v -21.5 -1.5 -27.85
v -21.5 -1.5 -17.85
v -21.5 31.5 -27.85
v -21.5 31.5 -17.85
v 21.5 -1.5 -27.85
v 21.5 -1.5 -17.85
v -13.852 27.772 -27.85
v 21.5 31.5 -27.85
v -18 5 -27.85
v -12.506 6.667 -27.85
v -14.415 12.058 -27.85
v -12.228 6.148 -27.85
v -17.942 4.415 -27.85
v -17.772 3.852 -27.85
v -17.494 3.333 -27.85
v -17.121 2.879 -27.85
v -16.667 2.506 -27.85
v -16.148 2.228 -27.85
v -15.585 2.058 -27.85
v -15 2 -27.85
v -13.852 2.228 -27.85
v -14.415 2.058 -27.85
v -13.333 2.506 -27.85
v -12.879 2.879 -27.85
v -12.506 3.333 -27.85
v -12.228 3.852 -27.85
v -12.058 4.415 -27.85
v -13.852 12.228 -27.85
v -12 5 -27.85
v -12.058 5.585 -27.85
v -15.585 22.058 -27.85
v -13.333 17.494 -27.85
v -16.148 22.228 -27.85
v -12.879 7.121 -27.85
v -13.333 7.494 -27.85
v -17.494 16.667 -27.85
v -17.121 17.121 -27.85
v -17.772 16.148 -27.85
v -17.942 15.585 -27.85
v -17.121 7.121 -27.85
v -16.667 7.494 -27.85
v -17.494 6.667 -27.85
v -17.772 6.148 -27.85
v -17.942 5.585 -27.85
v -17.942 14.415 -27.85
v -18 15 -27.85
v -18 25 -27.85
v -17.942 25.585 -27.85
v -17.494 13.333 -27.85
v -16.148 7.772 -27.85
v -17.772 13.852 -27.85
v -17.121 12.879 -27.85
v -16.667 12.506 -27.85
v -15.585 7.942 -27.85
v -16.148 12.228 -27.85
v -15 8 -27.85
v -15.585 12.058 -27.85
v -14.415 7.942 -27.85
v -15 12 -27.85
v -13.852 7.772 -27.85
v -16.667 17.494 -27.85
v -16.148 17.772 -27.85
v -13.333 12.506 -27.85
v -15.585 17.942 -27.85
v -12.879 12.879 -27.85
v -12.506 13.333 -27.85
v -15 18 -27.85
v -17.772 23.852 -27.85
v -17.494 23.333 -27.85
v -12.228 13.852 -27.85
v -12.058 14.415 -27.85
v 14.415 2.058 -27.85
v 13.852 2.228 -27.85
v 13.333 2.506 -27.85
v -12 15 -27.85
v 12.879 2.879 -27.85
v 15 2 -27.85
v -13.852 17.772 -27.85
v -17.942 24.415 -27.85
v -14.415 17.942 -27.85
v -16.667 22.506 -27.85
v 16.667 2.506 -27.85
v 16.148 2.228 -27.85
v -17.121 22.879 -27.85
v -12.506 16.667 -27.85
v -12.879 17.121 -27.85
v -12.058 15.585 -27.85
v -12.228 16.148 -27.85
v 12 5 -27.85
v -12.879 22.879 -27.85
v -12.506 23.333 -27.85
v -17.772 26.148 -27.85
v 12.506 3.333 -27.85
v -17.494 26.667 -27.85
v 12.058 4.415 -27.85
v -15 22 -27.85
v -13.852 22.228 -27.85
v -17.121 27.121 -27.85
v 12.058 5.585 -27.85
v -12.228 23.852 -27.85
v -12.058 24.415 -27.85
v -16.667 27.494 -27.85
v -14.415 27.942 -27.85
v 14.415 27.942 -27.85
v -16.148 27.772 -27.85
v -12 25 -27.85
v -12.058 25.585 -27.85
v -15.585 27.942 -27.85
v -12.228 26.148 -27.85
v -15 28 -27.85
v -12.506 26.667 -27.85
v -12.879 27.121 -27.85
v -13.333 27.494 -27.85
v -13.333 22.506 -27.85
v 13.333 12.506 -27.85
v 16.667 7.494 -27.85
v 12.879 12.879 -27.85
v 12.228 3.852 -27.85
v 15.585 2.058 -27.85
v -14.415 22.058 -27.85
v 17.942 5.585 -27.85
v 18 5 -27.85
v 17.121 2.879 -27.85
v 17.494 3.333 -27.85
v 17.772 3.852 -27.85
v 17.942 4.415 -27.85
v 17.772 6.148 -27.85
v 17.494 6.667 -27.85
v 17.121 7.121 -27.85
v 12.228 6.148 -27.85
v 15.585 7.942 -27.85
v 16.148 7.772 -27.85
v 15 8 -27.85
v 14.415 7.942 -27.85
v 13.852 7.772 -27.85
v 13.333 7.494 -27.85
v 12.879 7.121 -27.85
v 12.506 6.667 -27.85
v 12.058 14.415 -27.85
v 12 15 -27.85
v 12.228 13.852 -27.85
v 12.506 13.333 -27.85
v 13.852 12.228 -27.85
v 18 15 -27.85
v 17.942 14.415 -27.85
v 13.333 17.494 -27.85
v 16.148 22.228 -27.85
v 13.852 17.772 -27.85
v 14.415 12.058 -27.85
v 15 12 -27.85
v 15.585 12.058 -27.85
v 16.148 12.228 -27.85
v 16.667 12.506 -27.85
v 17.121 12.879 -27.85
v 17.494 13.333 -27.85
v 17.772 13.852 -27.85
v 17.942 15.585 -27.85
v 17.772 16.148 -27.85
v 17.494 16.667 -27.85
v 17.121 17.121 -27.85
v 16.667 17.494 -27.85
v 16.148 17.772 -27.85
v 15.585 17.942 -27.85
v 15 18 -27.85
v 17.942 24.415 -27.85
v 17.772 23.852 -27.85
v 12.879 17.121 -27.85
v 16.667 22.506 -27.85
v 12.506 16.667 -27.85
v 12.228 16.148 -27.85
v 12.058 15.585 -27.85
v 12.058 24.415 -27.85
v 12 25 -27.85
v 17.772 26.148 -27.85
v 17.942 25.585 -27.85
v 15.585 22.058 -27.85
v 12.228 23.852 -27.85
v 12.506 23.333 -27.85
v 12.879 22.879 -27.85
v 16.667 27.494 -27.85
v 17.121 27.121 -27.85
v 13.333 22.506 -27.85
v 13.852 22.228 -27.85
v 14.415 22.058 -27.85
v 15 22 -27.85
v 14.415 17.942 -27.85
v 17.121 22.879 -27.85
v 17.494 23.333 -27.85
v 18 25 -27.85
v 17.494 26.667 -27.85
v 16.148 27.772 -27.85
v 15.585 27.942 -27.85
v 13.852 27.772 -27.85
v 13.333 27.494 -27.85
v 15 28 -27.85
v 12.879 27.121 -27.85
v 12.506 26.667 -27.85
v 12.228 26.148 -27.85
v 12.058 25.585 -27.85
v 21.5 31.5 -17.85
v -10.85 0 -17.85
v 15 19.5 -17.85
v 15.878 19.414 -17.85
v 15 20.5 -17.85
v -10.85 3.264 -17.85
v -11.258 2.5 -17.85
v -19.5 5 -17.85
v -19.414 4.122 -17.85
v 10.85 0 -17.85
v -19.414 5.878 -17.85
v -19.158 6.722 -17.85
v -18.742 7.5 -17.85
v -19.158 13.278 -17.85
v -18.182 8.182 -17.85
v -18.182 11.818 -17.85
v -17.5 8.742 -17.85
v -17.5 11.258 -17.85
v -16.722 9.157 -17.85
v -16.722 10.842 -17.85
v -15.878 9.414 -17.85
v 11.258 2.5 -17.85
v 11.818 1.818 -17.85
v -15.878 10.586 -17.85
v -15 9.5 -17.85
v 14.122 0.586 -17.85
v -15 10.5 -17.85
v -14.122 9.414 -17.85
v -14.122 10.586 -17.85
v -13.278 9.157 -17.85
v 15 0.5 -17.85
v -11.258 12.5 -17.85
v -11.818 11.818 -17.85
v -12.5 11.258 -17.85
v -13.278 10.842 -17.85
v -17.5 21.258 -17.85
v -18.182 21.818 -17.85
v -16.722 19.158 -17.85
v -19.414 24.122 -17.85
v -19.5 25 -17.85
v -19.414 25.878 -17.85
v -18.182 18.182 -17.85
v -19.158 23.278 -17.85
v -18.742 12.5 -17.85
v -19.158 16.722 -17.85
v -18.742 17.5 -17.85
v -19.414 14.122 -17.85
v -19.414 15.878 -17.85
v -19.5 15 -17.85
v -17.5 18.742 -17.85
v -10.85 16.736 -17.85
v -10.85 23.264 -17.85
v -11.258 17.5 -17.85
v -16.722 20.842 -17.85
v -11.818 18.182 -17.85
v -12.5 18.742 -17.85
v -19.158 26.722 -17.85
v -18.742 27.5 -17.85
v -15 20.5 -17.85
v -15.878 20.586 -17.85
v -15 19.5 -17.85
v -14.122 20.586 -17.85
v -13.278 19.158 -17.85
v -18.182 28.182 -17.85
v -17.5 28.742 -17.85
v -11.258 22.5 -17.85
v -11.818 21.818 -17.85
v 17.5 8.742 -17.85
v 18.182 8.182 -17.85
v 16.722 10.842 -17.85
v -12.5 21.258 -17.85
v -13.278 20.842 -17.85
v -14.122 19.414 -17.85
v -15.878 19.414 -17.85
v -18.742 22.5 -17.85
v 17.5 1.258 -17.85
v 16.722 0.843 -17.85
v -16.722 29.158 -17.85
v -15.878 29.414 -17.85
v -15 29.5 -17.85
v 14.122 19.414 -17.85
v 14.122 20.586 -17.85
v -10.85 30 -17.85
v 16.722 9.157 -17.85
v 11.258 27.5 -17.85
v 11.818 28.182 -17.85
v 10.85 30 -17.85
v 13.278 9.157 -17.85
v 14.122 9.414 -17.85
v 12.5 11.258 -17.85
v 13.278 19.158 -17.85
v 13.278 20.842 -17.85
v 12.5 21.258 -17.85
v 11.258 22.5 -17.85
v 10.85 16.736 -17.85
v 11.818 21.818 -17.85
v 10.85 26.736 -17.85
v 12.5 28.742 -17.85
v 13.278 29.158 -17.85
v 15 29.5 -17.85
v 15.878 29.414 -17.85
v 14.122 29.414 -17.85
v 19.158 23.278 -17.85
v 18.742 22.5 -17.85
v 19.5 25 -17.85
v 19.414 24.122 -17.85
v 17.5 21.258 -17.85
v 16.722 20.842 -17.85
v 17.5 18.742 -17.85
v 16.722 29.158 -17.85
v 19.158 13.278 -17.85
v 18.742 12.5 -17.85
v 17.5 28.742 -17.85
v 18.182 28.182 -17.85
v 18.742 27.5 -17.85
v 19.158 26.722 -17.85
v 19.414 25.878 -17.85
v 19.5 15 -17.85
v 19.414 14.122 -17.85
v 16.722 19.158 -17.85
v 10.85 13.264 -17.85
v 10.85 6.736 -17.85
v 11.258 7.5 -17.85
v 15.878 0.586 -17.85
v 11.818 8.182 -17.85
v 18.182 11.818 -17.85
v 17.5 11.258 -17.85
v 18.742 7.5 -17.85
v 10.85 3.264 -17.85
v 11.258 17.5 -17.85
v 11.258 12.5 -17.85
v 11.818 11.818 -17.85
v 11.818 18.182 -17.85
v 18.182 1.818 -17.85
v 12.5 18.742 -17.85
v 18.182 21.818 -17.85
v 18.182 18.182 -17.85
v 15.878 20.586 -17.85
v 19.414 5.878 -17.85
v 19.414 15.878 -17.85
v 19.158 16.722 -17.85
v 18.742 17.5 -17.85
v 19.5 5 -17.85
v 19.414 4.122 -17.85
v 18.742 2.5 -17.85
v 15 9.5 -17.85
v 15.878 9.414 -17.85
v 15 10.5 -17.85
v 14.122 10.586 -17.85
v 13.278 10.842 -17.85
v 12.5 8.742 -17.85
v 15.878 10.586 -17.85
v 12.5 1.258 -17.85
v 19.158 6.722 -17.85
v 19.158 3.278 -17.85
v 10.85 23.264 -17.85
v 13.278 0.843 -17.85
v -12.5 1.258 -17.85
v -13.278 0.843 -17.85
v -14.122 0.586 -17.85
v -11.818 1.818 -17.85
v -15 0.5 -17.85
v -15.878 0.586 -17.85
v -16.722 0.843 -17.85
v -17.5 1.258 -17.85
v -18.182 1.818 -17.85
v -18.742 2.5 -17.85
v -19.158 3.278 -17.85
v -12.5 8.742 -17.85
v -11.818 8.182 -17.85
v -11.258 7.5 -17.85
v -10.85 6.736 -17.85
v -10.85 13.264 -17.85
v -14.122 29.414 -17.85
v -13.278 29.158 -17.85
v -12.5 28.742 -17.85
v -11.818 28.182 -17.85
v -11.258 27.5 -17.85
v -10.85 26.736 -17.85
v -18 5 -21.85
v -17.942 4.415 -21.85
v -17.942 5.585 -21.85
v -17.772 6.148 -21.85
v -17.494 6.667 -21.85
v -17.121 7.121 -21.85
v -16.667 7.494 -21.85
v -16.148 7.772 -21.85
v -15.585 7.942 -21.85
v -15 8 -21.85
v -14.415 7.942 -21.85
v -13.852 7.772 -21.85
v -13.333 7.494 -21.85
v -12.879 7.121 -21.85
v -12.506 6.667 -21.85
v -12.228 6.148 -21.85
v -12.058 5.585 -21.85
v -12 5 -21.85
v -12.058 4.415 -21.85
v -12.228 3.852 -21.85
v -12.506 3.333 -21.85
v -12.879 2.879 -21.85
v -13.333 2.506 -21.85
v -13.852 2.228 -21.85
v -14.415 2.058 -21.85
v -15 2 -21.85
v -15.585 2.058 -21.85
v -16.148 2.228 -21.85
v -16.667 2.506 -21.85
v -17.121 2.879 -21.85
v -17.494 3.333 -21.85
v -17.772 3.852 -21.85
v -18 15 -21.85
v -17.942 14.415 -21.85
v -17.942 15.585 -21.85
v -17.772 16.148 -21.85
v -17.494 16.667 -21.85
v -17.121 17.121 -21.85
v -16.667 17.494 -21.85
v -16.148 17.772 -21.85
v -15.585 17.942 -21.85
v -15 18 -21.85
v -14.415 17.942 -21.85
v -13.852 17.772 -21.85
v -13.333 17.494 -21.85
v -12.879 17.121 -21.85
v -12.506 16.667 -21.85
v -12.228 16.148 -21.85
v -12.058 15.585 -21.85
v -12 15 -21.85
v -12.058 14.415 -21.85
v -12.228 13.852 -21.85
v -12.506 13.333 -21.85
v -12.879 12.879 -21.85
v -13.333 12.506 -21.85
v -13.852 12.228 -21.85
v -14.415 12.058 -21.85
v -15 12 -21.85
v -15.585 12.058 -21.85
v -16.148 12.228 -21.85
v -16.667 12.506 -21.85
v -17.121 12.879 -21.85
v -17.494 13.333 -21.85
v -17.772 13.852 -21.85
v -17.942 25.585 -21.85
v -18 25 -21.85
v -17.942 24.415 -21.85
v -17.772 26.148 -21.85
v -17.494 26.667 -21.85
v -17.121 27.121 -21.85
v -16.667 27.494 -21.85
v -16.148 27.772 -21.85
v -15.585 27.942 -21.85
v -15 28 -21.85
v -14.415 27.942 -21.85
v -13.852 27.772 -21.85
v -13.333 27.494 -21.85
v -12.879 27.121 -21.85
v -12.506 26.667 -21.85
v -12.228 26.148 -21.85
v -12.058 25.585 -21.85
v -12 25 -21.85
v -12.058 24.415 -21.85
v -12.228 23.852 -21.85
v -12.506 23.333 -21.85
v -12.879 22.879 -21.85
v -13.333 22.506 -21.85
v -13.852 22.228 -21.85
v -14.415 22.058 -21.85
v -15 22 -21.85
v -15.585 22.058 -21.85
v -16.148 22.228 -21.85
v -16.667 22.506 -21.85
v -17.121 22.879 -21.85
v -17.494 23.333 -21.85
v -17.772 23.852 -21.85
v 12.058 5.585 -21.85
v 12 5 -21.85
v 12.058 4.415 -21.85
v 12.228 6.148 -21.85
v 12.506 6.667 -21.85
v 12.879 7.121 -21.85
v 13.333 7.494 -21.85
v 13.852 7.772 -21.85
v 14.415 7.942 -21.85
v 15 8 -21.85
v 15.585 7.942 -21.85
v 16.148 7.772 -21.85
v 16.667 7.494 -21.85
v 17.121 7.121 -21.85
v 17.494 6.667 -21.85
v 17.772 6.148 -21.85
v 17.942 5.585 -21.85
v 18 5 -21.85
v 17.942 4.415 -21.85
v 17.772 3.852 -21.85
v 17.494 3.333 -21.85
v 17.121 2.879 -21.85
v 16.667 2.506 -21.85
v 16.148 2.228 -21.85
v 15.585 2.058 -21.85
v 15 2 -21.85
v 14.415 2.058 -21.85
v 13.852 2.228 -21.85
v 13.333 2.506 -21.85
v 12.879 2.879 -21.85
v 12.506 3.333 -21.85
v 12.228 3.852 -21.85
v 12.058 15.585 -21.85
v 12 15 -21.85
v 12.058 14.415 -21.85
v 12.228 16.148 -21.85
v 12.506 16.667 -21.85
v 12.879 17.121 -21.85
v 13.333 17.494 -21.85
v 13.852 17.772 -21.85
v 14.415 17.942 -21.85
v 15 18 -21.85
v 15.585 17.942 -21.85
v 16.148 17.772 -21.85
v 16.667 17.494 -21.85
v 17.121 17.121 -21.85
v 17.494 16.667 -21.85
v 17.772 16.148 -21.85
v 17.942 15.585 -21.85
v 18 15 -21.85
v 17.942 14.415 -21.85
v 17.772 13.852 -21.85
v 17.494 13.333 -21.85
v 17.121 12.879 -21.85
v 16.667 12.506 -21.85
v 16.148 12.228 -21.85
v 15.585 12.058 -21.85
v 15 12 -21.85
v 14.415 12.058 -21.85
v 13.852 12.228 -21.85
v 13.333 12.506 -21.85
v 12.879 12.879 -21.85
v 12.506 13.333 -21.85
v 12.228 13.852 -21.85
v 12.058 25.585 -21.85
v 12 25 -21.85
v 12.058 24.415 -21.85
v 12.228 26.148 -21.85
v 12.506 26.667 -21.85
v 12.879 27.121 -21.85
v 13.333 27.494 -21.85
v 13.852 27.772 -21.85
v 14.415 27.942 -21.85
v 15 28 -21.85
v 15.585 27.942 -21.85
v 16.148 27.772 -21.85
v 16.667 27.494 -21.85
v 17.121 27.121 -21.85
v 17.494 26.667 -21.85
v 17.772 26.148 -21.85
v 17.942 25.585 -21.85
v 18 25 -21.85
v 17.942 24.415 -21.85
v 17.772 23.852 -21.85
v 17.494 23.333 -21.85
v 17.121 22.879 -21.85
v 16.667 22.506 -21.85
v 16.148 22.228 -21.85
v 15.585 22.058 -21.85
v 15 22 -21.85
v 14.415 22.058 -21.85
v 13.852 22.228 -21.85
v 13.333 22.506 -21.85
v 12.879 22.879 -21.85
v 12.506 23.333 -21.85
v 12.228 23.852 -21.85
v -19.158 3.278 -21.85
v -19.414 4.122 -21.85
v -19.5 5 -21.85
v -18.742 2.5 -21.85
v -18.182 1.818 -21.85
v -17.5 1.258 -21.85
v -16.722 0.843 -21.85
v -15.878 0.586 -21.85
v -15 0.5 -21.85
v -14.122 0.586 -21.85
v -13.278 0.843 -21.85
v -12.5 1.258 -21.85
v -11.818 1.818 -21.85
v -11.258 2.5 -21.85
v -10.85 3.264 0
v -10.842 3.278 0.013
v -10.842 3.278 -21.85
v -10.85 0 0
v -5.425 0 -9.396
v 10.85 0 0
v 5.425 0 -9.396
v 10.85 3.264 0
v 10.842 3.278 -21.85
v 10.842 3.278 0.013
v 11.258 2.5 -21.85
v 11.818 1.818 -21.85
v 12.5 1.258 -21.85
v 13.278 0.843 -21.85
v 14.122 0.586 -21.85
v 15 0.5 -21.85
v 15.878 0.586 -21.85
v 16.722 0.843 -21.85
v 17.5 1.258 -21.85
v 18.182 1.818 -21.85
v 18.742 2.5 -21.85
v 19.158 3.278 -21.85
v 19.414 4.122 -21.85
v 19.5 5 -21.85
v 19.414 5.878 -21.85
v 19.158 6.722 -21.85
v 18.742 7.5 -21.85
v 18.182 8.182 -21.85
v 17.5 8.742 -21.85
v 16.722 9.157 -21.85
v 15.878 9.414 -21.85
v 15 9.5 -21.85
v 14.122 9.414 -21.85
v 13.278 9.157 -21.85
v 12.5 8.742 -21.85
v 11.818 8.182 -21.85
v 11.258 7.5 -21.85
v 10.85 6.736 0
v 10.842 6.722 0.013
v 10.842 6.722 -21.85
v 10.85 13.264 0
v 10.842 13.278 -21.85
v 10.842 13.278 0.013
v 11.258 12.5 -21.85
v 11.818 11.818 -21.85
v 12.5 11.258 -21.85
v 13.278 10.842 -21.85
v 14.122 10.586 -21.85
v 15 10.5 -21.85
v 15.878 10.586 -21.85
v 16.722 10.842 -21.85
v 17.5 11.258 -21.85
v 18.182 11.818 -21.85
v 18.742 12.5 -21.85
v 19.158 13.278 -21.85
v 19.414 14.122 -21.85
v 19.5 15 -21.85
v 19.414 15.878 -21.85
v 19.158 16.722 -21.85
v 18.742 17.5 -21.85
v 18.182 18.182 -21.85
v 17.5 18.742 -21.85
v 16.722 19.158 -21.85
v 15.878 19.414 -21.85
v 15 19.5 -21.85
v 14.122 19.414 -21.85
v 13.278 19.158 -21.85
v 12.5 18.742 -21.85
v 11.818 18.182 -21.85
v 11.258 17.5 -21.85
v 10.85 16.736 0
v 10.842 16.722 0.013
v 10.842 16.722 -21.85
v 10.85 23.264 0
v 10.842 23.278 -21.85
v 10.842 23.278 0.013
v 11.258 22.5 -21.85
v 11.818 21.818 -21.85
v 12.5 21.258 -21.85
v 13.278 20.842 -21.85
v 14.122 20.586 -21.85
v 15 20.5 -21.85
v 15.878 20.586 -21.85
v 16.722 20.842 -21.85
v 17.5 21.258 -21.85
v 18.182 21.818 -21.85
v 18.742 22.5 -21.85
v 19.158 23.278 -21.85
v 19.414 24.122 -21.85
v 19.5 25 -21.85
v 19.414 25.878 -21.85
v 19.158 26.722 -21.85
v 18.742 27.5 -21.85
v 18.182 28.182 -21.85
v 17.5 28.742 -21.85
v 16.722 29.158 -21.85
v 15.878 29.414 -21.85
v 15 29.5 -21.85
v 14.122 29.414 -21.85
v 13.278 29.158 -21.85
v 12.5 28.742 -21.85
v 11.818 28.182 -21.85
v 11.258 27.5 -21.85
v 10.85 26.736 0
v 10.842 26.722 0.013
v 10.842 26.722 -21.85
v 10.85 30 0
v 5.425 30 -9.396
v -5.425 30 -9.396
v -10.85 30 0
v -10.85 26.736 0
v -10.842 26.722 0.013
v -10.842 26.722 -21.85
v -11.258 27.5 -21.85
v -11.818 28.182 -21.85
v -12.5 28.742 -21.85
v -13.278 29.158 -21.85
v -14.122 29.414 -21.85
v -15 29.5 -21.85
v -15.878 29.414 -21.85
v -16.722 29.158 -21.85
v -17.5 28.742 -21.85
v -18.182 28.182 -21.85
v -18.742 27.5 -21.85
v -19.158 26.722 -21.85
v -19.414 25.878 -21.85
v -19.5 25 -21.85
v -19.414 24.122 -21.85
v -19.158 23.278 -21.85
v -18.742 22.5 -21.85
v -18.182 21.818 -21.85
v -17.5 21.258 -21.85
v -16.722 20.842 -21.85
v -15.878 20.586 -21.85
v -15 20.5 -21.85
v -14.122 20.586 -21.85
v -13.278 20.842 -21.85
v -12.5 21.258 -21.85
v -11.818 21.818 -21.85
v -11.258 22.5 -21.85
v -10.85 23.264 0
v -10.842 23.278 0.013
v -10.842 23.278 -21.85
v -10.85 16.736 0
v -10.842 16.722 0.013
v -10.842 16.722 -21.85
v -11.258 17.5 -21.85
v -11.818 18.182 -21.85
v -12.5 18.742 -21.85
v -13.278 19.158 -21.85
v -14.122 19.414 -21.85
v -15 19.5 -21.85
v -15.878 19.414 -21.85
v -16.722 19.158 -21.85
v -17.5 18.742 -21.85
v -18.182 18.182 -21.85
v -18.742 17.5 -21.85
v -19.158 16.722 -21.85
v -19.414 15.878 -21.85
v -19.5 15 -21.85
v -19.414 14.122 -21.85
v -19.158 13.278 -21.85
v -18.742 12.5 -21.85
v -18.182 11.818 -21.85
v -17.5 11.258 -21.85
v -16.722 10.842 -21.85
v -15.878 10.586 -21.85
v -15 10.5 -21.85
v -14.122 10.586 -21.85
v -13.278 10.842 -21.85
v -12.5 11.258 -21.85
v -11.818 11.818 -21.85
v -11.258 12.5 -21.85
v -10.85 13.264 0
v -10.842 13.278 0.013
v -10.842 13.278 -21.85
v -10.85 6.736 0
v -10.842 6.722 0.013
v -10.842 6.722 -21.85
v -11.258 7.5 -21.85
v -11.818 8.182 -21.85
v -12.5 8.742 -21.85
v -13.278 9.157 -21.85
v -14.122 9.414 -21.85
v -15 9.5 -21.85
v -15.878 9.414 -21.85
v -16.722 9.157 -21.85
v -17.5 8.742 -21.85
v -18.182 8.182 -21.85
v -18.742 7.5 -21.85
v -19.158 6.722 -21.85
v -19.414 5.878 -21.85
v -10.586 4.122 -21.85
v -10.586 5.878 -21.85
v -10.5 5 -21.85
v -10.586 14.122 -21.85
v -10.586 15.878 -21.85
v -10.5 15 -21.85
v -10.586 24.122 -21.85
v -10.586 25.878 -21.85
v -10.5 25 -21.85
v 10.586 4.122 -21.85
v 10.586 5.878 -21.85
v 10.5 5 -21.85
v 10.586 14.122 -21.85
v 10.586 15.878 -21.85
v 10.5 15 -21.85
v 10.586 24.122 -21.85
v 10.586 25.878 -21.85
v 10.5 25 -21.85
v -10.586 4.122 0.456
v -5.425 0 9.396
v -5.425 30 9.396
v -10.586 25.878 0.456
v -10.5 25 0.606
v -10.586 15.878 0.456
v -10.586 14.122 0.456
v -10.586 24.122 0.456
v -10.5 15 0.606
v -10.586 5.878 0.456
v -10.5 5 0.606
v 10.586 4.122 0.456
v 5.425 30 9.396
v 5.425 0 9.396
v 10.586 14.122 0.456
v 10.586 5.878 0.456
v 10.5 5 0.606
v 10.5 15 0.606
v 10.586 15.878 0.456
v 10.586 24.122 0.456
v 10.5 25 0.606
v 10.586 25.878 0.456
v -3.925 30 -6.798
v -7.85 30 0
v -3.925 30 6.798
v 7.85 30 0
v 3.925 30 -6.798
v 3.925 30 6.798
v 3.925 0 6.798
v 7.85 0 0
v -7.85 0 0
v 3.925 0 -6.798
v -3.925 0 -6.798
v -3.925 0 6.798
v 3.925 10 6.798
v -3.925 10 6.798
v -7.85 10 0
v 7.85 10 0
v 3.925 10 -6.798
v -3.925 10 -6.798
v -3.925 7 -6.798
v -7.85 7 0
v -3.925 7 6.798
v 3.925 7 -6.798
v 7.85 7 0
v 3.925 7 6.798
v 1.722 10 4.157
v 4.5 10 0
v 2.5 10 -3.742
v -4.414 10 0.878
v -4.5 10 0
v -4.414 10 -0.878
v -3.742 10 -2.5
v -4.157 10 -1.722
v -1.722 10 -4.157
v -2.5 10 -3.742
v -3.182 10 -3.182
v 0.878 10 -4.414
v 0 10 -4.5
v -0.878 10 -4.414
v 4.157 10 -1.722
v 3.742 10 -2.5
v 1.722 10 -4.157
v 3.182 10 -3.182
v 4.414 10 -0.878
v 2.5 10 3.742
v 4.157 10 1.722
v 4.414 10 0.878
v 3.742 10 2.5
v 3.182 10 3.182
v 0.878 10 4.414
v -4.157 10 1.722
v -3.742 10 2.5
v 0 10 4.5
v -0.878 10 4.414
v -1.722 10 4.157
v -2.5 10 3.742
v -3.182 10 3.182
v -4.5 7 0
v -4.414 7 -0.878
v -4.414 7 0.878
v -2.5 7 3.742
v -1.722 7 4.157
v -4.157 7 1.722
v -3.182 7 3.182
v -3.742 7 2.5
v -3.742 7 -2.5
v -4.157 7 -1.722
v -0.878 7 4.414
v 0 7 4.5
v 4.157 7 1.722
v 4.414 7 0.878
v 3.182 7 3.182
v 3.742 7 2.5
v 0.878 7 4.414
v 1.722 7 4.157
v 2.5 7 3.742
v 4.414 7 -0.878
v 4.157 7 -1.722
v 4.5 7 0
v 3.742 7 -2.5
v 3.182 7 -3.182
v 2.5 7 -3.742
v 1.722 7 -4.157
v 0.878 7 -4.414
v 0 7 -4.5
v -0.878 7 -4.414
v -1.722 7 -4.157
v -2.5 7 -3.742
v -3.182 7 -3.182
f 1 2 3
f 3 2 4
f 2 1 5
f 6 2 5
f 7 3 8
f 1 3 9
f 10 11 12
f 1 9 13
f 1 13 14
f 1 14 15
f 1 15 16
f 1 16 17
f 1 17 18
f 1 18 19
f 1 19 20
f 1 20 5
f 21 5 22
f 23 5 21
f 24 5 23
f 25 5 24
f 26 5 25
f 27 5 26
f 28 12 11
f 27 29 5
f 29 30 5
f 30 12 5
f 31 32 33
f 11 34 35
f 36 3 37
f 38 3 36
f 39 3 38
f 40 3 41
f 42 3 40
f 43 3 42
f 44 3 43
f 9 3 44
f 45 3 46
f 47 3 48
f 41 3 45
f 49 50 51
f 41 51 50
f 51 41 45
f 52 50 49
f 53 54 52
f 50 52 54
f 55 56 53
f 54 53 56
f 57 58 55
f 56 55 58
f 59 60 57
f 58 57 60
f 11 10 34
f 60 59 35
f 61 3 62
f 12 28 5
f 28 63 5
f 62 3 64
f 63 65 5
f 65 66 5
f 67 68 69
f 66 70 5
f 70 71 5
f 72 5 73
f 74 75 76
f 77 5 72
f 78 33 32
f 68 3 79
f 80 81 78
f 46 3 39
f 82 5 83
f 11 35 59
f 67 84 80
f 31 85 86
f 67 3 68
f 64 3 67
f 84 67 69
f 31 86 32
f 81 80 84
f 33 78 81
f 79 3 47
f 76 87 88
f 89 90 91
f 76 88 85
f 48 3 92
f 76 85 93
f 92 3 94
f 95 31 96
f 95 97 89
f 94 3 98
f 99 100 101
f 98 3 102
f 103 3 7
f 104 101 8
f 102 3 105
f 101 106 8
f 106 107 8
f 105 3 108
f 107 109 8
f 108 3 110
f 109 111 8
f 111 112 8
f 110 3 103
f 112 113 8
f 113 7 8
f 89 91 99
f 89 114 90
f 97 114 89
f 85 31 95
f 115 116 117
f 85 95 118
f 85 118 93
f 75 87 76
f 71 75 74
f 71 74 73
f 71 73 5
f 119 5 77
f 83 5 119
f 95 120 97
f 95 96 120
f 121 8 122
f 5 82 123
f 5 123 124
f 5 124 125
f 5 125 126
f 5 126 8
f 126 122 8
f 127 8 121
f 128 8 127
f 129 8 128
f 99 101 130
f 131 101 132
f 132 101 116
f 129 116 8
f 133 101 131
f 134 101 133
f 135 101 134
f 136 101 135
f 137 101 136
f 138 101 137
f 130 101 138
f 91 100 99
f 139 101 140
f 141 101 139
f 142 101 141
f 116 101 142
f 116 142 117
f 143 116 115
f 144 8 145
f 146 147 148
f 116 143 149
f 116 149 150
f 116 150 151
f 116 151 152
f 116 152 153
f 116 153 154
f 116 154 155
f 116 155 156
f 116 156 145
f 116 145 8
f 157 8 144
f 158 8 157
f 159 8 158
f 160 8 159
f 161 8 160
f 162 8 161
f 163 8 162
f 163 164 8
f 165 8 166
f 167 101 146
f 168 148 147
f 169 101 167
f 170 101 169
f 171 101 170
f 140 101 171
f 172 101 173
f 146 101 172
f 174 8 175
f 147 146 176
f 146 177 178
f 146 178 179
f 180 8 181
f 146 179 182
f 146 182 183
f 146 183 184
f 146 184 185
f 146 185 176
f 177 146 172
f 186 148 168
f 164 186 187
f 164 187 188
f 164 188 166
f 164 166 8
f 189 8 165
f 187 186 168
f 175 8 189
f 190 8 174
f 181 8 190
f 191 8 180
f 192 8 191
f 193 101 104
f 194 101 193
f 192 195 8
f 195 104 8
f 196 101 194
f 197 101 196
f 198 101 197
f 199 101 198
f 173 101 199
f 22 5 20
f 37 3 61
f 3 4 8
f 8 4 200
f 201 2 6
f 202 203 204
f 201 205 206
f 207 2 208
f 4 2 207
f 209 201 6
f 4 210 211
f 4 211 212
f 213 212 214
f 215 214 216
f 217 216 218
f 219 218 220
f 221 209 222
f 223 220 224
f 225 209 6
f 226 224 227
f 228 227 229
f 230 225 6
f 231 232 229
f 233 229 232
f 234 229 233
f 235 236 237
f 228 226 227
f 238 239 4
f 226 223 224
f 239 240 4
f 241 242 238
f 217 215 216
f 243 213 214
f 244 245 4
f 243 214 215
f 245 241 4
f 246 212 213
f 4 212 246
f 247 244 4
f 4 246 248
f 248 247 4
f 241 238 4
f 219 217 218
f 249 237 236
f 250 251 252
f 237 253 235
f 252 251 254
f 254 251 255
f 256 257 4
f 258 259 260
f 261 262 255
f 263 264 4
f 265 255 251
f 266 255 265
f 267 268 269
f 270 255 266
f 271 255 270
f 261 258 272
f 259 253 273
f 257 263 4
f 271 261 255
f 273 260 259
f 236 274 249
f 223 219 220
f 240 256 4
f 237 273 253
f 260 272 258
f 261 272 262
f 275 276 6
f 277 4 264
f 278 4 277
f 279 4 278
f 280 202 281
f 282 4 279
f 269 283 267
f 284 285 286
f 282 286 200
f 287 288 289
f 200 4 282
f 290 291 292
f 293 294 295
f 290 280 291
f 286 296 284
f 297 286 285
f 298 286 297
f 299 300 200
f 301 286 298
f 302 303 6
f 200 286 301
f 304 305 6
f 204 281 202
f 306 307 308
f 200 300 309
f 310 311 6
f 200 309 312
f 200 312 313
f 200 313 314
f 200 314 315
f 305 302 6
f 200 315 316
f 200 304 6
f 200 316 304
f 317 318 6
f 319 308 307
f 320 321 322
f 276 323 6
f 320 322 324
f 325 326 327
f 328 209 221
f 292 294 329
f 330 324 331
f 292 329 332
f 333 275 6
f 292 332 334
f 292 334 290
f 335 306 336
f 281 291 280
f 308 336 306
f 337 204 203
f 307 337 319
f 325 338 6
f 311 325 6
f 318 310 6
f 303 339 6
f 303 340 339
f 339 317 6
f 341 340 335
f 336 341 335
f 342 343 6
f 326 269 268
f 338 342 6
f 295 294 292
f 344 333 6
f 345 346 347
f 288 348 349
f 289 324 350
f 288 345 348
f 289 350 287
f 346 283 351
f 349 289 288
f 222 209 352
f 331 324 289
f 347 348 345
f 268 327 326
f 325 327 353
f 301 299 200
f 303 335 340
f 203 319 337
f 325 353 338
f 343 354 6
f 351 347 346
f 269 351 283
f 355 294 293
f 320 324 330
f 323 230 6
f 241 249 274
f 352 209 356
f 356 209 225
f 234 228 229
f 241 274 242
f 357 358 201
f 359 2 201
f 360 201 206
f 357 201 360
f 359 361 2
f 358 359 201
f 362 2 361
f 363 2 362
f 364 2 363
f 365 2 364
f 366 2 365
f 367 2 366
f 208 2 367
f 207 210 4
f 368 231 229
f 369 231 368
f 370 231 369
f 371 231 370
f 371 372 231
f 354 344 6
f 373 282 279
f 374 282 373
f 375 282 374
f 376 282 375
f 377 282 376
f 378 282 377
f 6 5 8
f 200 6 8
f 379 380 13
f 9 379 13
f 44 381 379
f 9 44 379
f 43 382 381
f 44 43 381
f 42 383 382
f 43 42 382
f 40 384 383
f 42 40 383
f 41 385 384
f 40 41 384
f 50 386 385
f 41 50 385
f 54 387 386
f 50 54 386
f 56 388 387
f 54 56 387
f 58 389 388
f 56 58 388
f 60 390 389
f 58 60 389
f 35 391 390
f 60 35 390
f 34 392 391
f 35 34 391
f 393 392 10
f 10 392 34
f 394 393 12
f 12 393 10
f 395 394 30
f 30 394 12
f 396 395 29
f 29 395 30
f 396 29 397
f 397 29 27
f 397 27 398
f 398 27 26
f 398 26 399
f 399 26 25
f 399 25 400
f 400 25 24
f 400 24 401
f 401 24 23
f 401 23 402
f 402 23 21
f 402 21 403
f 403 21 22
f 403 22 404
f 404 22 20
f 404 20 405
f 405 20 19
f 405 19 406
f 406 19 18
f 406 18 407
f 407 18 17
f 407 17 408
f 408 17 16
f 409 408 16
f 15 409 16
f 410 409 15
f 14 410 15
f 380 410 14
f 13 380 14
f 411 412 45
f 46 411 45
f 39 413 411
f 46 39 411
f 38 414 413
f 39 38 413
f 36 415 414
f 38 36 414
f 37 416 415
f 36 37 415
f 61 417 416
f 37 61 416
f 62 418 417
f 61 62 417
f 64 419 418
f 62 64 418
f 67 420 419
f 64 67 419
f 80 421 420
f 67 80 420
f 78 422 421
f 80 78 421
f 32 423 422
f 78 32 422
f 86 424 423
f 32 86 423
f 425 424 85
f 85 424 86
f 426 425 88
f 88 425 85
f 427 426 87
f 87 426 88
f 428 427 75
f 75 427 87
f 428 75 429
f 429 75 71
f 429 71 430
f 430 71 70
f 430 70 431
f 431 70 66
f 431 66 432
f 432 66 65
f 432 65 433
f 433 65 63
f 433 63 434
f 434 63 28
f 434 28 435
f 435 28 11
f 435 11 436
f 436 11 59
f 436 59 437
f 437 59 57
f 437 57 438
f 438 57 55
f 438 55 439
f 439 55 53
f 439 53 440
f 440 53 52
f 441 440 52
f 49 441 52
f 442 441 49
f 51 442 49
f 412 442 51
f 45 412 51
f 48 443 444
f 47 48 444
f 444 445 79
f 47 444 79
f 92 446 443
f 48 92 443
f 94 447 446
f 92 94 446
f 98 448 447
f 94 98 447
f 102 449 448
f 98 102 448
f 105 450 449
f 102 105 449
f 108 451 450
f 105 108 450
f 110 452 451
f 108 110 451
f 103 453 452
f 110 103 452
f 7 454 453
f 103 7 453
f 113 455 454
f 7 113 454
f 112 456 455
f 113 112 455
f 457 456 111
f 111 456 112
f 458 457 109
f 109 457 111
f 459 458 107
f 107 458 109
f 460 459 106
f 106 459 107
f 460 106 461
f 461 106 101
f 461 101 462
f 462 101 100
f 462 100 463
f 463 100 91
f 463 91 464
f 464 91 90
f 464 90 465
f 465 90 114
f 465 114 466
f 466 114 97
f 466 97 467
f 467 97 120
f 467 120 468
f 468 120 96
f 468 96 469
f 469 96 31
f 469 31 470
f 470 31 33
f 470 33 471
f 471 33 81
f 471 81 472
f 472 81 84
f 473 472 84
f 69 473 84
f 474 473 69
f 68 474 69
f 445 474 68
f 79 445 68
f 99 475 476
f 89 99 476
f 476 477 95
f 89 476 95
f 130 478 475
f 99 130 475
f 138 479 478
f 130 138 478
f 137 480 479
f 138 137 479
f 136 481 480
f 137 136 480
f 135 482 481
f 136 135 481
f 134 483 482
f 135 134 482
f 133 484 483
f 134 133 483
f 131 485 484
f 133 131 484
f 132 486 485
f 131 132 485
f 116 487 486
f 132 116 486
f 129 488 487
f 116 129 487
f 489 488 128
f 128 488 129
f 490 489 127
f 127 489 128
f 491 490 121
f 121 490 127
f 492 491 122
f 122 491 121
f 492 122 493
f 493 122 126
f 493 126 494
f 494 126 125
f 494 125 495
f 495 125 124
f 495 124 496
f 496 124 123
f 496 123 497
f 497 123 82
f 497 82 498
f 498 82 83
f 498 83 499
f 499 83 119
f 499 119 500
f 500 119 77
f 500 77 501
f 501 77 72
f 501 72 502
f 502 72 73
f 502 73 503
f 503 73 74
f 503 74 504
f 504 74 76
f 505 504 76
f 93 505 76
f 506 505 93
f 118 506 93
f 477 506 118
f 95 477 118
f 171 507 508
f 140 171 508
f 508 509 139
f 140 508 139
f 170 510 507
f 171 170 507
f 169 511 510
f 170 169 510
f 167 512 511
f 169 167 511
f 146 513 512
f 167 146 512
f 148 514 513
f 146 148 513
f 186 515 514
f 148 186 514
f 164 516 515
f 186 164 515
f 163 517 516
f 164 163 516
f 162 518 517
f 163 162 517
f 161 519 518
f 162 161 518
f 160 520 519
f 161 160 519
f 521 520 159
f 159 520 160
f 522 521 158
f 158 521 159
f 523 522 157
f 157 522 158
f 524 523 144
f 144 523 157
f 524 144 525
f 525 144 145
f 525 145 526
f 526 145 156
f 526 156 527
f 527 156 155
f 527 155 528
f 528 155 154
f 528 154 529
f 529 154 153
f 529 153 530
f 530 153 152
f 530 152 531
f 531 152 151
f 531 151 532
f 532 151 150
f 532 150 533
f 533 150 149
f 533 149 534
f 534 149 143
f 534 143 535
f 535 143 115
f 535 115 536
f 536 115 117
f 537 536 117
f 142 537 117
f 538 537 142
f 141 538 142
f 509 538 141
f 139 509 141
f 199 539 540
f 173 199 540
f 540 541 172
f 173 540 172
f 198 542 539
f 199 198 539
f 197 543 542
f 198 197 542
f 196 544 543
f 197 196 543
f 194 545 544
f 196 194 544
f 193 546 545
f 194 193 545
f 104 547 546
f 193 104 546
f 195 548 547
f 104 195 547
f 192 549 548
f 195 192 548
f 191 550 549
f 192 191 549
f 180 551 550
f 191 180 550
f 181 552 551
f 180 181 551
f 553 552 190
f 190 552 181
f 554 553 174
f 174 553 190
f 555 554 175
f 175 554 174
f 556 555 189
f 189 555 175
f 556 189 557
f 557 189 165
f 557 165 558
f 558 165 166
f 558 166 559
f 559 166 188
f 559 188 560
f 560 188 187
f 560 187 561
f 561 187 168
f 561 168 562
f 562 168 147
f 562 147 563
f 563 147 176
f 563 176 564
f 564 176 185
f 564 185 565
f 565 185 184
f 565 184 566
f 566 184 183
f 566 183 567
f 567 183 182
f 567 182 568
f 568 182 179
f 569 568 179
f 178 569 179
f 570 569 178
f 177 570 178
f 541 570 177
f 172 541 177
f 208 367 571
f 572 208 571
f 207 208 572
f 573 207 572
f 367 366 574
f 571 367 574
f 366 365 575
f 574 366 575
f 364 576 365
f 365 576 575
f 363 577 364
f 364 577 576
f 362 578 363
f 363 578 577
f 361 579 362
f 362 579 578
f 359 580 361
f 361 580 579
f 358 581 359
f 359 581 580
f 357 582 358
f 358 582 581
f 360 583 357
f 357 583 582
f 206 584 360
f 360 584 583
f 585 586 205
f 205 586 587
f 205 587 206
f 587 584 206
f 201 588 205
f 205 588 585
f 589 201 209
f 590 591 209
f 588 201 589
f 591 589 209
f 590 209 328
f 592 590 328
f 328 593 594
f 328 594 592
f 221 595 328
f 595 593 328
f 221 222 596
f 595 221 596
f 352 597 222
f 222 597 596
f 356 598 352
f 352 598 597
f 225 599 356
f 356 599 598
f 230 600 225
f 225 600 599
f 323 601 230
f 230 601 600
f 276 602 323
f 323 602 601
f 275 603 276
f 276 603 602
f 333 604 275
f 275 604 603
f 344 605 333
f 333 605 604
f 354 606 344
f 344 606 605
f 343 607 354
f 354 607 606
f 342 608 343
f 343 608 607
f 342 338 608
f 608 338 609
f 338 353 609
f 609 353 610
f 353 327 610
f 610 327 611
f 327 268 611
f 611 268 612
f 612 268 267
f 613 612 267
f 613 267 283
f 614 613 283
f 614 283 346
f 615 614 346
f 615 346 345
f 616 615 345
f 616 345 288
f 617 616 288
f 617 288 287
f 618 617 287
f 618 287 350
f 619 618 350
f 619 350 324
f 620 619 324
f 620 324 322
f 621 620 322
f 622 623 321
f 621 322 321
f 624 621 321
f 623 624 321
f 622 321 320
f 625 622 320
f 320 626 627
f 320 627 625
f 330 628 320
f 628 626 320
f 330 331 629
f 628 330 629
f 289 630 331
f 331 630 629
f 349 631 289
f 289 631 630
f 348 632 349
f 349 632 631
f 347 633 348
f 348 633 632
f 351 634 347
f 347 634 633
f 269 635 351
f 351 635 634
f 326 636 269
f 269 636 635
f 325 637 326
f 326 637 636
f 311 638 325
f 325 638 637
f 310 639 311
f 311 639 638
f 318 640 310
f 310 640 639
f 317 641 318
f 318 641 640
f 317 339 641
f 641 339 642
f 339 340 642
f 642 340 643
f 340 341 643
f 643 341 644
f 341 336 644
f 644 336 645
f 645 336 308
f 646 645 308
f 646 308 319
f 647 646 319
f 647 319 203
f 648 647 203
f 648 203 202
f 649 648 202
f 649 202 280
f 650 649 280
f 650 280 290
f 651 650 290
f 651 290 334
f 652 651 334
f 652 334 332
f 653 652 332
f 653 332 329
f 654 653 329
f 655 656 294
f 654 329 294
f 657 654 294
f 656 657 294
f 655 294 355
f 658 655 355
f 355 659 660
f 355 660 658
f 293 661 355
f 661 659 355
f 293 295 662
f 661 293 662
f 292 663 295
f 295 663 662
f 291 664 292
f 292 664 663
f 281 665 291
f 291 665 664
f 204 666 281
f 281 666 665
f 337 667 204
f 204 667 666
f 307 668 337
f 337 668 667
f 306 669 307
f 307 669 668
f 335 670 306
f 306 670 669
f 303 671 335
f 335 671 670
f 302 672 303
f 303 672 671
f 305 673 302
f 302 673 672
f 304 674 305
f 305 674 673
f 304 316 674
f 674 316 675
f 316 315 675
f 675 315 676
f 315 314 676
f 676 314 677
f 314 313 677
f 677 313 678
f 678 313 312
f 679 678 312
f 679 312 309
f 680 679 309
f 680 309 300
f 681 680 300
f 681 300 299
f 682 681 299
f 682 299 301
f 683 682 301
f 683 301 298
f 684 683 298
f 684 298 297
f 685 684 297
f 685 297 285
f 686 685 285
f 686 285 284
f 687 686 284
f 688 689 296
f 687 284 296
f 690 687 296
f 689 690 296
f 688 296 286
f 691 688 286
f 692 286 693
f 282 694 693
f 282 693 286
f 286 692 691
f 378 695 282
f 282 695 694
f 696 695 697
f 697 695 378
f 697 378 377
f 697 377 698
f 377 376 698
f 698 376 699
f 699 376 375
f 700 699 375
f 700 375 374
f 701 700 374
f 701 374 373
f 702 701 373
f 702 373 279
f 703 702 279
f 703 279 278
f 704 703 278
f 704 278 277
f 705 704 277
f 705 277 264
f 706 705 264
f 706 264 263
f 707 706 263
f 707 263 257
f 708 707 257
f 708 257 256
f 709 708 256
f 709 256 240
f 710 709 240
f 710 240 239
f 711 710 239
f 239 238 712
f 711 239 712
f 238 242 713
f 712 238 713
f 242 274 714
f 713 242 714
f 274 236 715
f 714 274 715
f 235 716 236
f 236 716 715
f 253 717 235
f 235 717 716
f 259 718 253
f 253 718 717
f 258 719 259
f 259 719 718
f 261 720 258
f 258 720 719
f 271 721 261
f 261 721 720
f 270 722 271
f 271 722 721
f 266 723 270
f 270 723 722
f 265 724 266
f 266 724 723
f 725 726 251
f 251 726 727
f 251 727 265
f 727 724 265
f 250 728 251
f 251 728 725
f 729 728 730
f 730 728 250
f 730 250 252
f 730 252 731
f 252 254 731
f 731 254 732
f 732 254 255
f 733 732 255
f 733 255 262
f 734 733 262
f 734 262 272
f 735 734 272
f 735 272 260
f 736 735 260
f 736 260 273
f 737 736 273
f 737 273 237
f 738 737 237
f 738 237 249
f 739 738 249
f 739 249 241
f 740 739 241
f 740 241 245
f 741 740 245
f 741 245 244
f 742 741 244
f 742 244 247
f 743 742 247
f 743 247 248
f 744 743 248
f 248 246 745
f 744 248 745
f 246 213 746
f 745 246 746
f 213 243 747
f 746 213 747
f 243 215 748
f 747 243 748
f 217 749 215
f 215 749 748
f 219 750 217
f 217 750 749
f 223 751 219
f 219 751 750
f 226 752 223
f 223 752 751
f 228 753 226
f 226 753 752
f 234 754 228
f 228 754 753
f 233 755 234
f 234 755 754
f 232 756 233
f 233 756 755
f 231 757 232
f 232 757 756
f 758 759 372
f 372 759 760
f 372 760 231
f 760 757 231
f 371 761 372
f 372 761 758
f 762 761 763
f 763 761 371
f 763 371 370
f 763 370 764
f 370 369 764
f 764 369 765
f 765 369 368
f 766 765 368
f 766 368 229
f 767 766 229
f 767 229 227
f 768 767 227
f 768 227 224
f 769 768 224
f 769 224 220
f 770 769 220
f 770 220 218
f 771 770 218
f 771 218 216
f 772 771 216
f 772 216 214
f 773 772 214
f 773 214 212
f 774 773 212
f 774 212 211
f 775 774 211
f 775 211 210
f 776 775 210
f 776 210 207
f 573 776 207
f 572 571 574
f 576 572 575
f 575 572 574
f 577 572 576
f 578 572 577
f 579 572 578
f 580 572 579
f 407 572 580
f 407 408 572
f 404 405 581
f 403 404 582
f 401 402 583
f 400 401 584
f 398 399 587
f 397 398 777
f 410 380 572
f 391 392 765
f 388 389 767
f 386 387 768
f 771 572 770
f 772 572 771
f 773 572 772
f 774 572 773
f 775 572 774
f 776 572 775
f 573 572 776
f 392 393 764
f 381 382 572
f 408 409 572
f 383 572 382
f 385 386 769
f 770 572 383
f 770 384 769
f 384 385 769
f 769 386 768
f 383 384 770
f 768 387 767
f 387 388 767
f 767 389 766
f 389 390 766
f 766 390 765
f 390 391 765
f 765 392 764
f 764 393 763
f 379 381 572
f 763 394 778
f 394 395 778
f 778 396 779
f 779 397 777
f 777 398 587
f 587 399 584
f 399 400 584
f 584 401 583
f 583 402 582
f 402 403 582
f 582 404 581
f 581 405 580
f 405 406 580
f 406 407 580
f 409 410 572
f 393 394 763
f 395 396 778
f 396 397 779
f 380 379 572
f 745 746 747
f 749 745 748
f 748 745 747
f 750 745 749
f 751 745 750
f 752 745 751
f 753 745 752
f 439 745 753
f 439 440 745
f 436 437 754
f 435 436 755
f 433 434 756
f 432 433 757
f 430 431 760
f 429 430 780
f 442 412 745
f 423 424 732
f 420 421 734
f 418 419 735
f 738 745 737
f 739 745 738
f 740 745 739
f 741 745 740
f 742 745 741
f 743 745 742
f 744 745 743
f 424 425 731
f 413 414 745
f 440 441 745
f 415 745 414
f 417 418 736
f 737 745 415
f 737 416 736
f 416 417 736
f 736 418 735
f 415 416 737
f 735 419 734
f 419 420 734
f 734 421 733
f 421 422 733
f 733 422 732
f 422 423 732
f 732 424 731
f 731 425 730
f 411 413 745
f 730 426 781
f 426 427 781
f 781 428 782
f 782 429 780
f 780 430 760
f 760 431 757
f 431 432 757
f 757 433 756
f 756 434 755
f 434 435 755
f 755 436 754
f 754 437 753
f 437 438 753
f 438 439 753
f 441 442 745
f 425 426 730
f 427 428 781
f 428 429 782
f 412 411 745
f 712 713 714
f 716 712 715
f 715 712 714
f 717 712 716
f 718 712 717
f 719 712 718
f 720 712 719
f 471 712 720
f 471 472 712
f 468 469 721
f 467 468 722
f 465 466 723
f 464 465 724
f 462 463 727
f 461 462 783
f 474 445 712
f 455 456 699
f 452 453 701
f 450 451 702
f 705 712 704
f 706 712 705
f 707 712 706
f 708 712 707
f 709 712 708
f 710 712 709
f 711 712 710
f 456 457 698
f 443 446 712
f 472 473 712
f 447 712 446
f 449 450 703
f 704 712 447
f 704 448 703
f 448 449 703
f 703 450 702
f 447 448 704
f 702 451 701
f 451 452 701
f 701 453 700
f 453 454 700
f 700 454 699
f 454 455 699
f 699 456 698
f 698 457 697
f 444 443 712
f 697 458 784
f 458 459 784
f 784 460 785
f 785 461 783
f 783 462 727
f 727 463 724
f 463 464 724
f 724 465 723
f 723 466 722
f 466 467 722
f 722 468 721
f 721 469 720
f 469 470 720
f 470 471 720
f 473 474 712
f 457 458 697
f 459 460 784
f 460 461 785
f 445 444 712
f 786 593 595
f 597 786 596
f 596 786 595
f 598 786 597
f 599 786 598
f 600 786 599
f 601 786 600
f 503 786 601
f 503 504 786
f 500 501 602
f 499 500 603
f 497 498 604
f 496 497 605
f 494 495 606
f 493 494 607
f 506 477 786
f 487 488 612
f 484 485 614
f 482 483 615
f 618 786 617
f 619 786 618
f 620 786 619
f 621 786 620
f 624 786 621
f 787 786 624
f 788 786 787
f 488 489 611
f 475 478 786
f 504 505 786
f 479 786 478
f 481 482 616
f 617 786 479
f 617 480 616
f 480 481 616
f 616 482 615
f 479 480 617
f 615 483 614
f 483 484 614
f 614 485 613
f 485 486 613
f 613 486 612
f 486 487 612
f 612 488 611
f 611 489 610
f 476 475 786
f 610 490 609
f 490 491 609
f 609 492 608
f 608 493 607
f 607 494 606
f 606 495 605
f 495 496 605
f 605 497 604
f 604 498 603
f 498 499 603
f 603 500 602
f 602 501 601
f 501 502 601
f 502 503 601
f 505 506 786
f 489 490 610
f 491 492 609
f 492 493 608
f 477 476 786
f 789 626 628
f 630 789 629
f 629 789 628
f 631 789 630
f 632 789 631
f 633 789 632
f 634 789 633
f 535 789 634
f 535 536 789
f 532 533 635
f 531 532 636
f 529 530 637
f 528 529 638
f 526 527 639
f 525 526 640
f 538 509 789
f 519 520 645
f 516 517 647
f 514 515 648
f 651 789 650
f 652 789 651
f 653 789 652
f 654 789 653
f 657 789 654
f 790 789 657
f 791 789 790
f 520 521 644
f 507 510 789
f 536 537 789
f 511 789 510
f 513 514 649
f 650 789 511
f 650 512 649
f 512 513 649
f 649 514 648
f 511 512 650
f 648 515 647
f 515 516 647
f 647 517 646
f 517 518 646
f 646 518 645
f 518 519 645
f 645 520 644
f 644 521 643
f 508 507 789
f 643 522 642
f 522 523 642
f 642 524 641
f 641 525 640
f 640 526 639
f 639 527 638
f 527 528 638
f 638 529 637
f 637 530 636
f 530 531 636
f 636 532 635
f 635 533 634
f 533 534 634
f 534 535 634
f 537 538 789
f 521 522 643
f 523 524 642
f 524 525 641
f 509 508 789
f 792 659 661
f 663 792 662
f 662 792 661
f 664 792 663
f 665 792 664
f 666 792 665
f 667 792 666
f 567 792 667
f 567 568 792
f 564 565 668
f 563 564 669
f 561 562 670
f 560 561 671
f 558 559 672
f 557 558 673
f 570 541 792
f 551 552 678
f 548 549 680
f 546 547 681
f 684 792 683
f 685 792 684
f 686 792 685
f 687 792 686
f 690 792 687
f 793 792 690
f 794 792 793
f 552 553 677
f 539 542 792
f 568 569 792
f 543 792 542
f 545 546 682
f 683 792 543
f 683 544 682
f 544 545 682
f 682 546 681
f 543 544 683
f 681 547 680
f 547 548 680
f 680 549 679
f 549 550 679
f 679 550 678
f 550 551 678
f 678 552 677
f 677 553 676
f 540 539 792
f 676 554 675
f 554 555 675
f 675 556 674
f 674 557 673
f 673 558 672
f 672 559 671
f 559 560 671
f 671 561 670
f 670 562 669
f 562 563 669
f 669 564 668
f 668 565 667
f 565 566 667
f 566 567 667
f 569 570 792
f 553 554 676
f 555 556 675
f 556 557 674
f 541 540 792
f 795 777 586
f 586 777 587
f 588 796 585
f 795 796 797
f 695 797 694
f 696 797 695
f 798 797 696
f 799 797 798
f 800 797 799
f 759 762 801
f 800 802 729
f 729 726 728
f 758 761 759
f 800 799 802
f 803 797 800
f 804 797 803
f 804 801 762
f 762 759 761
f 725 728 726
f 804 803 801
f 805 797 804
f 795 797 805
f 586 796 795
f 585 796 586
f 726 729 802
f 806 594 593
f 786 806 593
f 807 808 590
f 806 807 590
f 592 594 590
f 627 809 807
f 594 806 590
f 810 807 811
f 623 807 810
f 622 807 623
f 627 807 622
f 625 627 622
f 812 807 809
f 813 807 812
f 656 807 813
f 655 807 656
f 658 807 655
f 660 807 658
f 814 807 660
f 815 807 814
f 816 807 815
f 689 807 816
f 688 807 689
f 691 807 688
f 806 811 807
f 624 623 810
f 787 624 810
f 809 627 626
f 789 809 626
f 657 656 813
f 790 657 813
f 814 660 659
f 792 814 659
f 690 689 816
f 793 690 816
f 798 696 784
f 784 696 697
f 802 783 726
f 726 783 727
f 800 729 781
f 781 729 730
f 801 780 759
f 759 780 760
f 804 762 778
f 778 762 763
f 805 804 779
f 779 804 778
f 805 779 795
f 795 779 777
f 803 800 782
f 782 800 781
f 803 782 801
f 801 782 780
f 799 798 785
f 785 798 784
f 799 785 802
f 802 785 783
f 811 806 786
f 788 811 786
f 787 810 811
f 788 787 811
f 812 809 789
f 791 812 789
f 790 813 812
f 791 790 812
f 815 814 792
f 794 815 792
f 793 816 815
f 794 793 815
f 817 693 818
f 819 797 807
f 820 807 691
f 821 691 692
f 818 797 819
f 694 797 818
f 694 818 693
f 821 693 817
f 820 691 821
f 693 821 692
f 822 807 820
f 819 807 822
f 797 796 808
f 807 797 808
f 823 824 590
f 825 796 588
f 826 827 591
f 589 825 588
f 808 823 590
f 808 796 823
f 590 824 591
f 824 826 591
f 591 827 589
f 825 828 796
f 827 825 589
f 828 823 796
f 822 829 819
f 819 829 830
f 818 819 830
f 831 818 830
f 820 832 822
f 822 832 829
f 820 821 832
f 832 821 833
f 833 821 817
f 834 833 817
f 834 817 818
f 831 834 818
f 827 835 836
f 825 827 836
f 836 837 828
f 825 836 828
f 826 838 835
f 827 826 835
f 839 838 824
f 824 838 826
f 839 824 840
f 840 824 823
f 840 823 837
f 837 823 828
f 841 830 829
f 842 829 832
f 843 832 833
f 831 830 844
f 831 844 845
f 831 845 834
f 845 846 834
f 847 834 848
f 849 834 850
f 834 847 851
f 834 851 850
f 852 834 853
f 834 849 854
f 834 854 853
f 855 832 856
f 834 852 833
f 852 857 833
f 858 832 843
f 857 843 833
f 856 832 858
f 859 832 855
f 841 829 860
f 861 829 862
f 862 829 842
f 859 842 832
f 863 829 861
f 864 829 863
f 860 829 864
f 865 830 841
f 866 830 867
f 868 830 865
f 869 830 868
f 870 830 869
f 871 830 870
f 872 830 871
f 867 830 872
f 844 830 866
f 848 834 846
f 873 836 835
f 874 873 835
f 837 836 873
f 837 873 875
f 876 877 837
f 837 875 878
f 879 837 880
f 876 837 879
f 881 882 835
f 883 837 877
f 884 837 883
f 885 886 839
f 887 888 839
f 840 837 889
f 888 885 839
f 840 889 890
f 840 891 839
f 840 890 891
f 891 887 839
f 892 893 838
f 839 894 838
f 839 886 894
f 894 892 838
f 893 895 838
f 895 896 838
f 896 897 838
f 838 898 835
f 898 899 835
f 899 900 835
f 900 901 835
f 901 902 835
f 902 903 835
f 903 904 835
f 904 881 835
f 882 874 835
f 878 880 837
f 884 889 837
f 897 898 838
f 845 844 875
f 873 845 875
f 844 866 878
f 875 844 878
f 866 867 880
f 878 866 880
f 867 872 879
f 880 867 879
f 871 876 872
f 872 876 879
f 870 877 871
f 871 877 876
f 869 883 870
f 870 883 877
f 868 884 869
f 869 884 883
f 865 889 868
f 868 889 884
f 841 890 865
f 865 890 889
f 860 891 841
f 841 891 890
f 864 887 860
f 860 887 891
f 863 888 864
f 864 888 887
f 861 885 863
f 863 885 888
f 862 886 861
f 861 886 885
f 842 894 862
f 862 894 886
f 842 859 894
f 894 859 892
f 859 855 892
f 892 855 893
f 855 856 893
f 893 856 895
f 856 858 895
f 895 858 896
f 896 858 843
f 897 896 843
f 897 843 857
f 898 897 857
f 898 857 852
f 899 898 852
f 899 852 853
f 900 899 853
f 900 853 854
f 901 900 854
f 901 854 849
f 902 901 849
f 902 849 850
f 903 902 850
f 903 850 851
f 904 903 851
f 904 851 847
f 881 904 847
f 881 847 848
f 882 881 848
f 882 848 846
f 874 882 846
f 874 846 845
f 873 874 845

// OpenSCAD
m8_shaft_diameter = 9;
m8_nut_diameter = 15.7;
m8_pocket_depth = 7;
nut_holder_len = 30;
nut_holder_wall = 3;
nut_bottom_wall = 3;
nut_holder_outer_diam = m8_nut_diameter+2*nut_holder_wall;
nut_holder_flat_diam = nut_holder_outer_diam/(2*sqrt(1+(1/3)));

module leadscrew_nut_holder() {
	// rotate so hexagon is along positive y axis
	rotate([-90,0,0]){
		difference() {
			union() {
				// main hut holder profile
				difference() {
					// outer hexagon
					cylinder(r=nut_holder_outer_diam/2, h=nut_holder_len, $fn=6);
					// cut out inner hexagon at size of expected nut
					translate([0,0,-1])
						cylinder(r=m8_nut_diameter/2, h=nut_holder_len+2, $fn=6);
				}
				// wall below top nut
				translate([0,0,m8_pocket_depth])
					cylinder(r=nut_holder_outer_diam/2, h=nut_bottom_wall, $fn=6); 
			}
			// cut out shaft hole
			cylinder(r=m8_shaft_diameter/2, h=nut_holder_len, $fn=32);
		}
	}
}

module leadscrew_nut_holder_profile() {
	// rotate so hexagon is along positive y axis
	rotate([-90,0,0])
		// outer hexagon only
		translate([0,0,-1])
			cylinder(r=nut_holder_outer_diam/2, h=nut_holder_len+2, $fn=6);
}

m5_shaft_diam = 6;
m5_head_diam = 9;
m5_head_inset = 3;

dist_to_wheel = 10;
half_wheel = 11/2;
wheel_spacer = 25.4/4 /* 1/4" */;
x_axis_plate_thick = 6;

dist_to_shaft = dist_to_wheel+half_wheel+wheel_spacer+x_axis_plate_thick;
block_margin = 2;
mounting_spread_w = 30;
mounting_spread_h = 20;
block_base_w = mounting_spread_w+m5_head_diam+2*block_margin;
block_base_h = mounting_spread_h+m5_head_diam+2*block_margin;
block_base_thick = 10;

module leadscrew_block() { 
	difference() {
		union() {
			// nut holder
			leadscrew_nut_holder();
			// center support block under nut holder
			difference() {
				translate([-nut_holder_outer_diam/2,0,-dist_to_shaft])
					cube([nut_holder_outer_diam,nut_holder_len,dist_to_shaft]);
				leadscrew_nut_holder_profile();
			}
			// mounting block base
			translate([-block_base_w/2,
										-(block_base_h-nut_holder_len)/2,-dist_to_shaft]) 
				cube([block_base_w,block_base_h,block_base_thick]);
		}
		// mounting holes
		translate([-block_base_w/2,
										-(block_base_h-nut_holder_len)/2,-dist_to_shaft]) 
		translate([m5_head_diam/2+block_margin, m5_head_diam/2+block_margin, -1]) 
		union() {
			for (xoff=[0,mounting_spread_w]) {
				for (yoff=[0,mounting_spread_h/2,mounting_spread_h]) {
					translate([xoff,yoff,0]) {
					// bolt hole
					cylinder(r=m5_shaft_diam/2, h=block_base_thick+2,$fn=32);
					// countersink for head
					translate([0,0,block_base_thick-m5_head_inset])
						cylinder(r=m5_head_diam/2, h=500,$fn=32);
					}
				}
			}
		}
	}
}

leadscrew_block();
